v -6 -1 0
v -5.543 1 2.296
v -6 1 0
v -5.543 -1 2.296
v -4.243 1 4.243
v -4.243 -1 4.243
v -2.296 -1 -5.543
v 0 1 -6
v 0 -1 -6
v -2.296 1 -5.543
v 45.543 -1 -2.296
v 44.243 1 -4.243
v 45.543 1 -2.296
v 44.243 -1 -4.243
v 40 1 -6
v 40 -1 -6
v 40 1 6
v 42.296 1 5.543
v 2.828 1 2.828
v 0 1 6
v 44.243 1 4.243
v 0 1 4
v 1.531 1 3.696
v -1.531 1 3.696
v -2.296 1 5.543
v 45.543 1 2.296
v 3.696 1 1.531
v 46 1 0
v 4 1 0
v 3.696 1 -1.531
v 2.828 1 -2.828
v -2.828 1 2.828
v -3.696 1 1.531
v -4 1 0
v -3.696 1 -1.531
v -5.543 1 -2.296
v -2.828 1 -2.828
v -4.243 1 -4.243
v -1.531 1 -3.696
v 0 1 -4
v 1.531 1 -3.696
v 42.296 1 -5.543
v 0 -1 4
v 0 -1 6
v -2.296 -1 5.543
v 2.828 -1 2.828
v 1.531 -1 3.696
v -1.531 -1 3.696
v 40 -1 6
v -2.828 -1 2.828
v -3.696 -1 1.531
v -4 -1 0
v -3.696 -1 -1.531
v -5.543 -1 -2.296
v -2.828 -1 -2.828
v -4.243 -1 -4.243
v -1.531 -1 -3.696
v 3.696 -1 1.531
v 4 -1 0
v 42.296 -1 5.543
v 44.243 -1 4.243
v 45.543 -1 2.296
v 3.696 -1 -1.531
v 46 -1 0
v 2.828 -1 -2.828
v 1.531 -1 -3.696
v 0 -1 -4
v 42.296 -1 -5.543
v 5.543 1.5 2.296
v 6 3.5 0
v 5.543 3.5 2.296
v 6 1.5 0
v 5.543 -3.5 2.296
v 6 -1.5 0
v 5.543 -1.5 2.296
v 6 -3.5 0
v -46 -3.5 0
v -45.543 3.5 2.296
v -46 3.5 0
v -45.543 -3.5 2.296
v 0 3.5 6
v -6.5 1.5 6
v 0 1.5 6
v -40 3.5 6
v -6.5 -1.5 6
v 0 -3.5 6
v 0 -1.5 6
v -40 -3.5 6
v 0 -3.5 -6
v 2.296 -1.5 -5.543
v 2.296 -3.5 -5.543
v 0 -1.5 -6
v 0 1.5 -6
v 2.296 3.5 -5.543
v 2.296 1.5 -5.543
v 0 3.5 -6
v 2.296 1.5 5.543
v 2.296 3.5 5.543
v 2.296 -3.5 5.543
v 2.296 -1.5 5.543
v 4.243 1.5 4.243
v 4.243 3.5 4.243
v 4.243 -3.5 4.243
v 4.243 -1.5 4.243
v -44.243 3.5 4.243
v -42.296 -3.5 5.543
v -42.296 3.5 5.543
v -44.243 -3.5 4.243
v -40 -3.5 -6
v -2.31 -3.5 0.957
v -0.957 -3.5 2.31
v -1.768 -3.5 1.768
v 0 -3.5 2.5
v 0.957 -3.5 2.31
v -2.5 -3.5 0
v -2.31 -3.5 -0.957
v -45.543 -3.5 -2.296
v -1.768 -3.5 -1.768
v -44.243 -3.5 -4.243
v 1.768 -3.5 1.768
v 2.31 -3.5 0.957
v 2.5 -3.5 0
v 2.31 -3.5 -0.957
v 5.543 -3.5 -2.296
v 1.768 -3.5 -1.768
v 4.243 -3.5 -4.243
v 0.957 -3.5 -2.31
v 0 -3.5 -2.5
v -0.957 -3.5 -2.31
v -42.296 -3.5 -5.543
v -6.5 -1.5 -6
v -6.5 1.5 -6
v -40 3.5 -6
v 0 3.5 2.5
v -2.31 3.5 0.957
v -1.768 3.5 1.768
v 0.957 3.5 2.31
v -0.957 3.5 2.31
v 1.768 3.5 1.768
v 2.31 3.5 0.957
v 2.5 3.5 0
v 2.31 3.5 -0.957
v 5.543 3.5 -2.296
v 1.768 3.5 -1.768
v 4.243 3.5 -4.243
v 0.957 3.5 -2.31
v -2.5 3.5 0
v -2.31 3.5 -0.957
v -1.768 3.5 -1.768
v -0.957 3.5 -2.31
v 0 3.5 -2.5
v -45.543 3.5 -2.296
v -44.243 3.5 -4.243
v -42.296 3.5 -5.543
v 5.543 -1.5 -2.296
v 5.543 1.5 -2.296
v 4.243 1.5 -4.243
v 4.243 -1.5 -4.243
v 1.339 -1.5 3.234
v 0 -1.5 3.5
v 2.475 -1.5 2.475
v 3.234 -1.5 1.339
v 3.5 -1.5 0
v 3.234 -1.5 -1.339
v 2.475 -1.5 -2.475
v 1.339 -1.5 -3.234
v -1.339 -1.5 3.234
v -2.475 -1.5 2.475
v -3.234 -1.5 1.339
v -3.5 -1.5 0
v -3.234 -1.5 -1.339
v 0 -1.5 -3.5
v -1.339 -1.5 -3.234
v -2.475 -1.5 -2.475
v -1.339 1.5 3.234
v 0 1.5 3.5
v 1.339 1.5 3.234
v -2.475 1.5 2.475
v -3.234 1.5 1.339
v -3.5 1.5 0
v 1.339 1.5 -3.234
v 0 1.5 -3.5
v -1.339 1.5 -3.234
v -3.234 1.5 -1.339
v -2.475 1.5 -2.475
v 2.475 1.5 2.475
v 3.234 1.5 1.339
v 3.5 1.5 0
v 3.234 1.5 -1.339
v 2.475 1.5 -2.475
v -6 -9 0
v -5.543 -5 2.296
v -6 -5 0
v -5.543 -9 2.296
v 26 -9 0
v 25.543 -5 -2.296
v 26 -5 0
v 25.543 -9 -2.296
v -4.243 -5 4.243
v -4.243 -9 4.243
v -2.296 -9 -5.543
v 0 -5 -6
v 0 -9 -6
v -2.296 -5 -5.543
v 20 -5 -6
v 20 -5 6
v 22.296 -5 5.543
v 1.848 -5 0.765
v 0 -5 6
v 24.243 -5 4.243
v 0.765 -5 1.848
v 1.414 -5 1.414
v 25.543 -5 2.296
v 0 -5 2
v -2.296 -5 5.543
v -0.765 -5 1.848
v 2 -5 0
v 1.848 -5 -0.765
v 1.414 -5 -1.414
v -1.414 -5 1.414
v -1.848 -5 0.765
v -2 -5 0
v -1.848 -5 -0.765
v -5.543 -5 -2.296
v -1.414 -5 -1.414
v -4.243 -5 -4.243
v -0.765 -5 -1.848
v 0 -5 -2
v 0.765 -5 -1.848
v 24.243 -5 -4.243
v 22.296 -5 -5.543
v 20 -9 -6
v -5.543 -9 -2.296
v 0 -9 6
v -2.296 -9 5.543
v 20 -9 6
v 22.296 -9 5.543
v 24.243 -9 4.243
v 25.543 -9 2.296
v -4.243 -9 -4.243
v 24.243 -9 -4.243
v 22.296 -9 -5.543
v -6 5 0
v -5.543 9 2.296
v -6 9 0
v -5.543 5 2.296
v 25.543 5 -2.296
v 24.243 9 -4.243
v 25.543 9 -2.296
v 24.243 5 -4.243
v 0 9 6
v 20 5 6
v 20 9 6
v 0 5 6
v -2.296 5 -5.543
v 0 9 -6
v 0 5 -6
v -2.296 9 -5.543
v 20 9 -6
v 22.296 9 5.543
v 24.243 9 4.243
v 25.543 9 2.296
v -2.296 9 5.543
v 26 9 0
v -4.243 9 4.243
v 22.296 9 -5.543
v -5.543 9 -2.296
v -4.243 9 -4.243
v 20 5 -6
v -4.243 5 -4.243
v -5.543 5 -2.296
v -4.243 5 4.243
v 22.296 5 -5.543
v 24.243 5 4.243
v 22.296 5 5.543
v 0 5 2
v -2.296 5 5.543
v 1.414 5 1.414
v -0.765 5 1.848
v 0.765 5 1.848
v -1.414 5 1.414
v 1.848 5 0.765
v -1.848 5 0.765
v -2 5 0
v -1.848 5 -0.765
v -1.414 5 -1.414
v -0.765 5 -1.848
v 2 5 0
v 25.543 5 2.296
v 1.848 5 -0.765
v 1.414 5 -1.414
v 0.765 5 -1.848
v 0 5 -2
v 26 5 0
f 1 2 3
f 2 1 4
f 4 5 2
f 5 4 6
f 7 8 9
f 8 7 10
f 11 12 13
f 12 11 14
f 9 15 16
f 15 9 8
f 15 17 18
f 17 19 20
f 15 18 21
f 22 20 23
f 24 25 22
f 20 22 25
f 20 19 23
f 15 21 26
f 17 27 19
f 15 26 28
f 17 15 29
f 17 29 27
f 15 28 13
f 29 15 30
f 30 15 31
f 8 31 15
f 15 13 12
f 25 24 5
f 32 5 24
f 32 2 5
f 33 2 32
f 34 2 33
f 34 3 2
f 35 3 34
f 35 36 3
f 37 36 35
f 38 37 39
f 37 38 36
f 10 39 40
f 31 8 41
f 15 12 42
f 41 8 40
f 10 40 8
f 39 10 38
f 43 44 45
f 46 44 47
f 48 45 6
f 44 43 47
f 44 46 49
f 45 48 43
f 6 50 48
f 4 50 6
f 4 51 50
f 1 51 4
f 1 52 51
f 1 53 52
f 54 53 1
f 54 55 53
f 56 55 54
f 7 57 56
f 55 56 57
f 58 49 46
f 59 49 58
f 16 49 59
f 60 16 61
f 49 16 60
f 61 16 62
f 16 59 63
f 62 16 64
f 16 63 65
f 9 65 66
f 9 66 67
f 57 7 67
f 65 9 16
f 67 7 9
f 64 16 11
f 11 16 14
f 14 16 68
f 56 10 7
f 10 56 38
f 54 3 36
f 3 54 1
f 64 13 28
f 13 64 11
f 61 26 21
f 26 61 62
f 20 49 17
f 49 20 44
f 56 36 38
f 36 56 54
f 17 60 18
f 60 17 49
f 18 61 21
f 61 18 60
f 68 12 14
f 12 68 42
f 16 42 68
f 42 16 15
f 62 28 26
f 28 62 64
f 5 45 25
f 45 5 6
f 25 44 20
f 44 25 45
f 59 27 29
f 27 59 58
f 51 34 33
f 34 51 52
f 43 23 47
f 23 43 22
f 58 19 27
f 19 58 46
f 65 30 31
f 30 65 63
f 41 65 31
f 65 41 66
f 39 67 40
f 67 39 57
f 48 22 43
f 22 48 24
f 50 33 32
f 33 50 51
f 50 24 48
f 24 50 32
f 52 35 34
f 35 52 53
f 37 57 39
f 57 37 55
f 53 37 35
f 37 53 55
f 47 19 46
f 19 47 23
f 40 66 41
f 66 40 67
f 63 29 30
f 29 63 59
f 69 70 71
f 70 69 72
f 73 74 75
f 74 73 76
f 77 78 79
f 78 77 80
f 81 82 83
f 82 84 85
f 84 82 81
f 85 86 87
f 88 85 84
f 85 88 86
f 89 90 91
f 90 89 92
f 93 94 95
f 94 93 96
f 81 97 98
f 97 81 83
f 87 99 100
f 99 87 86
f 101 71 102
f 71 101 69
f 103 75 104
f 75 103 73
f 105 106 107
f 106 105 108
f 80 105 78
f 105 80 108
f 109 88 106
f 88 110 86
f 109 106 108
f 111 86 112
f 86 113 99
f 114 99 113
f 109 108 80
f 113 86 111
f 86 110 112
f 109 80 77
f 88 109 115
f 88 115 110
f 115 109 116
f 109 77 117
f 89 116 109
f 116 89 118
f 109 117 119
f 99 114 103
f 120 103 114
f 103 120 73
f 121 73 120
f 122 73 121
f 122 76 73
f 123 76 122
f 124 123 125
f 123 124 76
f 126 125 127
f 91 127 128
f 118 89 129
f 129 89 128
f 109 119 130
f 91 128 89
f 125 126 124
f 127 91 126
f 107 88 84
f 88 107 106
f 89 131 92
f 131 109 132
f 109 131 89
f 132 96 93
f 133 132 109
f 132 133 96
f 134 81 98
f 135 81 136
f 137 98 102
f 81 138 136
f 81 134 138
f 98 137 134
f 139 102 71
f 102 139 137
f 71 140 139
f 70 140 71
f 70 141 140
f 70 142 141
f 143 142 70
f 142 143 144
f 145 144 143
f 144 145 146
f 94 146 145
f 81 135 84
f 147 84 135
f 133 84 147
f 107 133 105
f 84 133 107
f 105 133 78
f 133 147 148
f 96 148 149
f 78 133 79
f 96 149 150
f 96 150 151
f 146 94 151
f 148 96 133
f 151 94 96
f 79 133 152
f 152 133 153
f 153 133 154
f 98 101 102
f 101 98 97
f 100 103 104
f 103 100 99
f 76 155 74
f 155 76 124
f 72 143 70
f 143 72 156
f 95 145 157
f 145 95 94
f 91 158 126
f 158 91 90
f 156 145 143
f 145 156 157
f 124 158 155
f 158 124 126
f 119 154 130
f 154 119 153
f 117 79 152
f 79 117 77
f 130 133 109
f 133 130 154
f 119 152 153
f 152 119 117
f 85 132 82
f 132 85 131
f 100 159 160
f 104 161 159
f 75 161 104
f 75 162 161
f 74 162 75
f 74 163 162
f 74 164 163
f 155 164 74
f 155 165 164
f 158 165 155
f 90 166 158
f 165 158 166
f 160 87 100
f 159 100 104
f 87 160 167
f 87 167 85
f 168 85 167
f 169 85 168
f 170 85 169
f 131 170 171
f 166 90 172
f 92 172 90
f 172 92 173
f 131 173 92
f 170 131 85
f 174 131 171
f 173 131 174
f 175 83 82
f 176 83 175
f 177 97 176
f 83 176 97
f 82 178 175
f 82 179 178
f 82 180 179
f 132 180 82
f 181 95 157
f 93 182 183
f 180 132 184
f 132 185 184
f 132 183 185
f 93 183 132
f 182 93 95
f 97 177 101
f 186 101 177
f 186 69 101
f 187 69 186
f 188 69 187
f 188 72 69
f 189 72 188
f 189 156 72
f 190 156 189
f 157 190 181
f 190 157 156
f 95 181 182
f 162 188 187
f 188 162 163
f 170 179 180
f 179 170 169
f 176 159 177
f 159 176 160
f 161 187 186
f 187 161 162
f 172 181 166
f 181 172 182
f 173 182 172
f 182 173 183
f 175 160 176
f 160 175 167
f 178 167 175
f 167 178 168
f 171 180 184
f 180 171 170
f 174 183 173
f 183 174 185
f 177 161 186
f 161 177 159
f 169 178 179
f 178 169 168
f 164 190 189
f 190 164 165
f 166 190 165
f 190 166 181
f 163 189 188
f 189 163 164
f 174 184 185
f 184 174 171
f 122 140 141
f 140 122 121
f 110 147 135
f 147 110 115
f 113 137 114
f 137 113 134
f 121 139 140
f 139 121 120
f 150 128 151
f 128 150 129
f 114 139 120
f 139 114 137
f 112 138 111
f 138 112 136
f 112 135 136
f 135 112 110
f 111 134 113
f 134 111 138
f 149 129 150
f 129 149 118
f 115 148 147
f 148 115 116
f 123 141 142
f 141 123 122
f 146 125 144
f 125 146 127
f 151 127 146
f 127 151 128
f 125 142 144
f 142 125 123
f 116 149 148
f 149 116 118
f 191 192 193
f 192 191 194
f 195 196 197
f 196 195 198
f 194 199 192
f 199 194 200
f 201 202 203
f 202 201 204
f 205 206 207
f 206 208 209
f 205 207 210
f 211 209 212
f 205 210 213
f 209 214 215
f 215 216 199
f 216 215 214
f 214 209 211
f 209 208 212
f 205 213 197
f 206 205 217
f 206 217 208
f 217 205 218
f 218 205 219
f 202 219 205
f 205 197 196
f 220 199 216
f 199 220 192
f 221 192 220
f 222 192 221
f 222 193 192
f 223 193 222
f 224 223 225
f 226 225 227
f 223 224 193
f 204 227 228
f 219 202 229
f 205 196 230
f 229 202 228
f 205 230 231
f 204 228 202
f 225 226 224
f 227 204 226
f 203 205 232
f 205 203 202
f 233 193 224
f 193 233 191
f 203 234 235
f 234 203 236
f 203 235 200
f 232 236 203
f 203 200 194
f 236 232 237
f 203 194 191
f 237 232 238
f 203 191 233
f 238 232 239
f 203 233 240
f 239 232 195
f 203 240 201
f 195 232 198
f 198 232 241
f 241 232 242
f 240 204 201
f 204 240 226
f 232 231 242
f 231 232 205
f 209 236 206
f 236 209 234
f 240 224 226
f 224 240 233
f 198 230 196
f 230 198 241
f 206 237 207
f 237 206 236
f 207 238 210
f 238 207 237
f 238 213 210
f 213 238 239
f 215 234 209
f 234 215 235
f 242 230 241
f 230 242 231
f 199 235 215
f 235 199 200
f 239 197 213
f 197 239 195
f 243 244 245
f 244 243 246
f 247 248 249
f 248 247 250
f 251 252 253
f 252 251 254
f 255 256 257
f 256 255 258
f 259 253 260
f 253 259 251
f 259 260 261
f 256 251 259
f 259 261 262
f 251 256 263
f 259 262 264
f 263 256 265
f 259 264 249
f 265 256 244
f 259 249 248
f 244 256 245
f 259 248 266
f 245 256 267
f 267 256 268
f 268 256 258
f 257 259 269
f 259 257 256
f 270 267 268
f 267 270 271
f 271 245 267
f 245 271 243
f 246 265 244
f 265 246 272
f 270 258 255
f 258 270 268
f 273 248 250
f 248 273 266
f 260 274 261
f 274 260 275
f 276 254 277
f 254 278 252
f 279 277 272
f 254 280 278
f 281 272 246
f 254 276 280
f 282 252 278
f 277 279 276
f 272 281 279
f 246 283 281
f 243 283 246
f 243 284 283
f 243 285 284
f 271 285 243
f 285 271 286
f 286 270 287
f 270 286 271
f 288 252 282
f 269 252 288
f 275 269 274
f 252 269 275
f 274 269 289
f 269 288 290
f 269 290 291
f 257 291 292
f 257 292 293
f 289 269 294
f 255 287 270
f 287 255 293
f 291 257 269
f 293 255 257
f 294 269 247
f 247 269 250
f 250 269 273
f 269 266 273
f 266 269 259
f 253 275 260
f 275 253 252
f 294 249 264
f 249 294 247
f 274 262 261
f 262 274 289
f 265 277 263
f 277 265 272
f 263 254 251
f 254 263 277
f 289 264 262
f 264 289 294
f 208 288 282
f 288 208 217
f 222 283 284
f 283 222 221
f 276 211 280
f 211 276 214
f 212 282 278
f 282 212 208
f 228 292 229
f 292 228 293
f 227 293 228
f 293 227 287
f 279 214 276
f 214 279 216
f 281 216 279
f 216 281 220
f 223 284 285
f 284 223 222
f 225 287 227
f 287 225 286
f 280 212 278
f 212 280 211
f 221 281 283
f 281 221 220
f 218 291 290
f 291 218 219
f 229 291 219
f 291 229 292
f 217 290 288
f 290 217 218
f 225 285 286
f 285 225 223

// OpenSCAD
$fn=16;

rotate(a = [90, 0, 0]) {
	union() {
		union() {
			difference() {
				hull() {
					cylinder(center = true, d = 12, h = 2);
					translate(v = [40, 0, 0]) {
						cylinder(center = true, d = 12, h = 2);
					}
				}
				cylinder(center = true, d = 8, h = 3);
			}
			difference() {
				union() {
					difference() {
						difference() {
							hull() {
								cylinder(center = true, d = 12, h = 7);
								translate(v = [-40, 0, 0]) {
									cylinder(center = true, d = 12, h = 7);
								}
							}
							cylinder(center = true, d = 5, h = 8);
						}
						cube(center = true, size = [13, 13, 3]);
					}
					cylinder(center = true, d = 7, h = 7);
				}
				cylinder(center = true, d = 5, h = 8);
			}
		}
		union() {
			translate(v = [0, 0, 7]) {
				hull() {
					cylinder(center = true, d = 12, h = 4);
					translate(v = [20, 0, 0]) {
						cylinder(center = true, d = 12, h = 4);
					}
				}
			}
			translate(v = [0, 0, -7]) {
				hull() {
					cylinder(center = true, d = 12, h = 4);
					translate(v = [20, 0, 0]) {
						cylinder(center = true, d = 12, h = 4);
					}
				}
			}
			cylinder(center = true, d = 4, h = 10);
		}
	}
}
